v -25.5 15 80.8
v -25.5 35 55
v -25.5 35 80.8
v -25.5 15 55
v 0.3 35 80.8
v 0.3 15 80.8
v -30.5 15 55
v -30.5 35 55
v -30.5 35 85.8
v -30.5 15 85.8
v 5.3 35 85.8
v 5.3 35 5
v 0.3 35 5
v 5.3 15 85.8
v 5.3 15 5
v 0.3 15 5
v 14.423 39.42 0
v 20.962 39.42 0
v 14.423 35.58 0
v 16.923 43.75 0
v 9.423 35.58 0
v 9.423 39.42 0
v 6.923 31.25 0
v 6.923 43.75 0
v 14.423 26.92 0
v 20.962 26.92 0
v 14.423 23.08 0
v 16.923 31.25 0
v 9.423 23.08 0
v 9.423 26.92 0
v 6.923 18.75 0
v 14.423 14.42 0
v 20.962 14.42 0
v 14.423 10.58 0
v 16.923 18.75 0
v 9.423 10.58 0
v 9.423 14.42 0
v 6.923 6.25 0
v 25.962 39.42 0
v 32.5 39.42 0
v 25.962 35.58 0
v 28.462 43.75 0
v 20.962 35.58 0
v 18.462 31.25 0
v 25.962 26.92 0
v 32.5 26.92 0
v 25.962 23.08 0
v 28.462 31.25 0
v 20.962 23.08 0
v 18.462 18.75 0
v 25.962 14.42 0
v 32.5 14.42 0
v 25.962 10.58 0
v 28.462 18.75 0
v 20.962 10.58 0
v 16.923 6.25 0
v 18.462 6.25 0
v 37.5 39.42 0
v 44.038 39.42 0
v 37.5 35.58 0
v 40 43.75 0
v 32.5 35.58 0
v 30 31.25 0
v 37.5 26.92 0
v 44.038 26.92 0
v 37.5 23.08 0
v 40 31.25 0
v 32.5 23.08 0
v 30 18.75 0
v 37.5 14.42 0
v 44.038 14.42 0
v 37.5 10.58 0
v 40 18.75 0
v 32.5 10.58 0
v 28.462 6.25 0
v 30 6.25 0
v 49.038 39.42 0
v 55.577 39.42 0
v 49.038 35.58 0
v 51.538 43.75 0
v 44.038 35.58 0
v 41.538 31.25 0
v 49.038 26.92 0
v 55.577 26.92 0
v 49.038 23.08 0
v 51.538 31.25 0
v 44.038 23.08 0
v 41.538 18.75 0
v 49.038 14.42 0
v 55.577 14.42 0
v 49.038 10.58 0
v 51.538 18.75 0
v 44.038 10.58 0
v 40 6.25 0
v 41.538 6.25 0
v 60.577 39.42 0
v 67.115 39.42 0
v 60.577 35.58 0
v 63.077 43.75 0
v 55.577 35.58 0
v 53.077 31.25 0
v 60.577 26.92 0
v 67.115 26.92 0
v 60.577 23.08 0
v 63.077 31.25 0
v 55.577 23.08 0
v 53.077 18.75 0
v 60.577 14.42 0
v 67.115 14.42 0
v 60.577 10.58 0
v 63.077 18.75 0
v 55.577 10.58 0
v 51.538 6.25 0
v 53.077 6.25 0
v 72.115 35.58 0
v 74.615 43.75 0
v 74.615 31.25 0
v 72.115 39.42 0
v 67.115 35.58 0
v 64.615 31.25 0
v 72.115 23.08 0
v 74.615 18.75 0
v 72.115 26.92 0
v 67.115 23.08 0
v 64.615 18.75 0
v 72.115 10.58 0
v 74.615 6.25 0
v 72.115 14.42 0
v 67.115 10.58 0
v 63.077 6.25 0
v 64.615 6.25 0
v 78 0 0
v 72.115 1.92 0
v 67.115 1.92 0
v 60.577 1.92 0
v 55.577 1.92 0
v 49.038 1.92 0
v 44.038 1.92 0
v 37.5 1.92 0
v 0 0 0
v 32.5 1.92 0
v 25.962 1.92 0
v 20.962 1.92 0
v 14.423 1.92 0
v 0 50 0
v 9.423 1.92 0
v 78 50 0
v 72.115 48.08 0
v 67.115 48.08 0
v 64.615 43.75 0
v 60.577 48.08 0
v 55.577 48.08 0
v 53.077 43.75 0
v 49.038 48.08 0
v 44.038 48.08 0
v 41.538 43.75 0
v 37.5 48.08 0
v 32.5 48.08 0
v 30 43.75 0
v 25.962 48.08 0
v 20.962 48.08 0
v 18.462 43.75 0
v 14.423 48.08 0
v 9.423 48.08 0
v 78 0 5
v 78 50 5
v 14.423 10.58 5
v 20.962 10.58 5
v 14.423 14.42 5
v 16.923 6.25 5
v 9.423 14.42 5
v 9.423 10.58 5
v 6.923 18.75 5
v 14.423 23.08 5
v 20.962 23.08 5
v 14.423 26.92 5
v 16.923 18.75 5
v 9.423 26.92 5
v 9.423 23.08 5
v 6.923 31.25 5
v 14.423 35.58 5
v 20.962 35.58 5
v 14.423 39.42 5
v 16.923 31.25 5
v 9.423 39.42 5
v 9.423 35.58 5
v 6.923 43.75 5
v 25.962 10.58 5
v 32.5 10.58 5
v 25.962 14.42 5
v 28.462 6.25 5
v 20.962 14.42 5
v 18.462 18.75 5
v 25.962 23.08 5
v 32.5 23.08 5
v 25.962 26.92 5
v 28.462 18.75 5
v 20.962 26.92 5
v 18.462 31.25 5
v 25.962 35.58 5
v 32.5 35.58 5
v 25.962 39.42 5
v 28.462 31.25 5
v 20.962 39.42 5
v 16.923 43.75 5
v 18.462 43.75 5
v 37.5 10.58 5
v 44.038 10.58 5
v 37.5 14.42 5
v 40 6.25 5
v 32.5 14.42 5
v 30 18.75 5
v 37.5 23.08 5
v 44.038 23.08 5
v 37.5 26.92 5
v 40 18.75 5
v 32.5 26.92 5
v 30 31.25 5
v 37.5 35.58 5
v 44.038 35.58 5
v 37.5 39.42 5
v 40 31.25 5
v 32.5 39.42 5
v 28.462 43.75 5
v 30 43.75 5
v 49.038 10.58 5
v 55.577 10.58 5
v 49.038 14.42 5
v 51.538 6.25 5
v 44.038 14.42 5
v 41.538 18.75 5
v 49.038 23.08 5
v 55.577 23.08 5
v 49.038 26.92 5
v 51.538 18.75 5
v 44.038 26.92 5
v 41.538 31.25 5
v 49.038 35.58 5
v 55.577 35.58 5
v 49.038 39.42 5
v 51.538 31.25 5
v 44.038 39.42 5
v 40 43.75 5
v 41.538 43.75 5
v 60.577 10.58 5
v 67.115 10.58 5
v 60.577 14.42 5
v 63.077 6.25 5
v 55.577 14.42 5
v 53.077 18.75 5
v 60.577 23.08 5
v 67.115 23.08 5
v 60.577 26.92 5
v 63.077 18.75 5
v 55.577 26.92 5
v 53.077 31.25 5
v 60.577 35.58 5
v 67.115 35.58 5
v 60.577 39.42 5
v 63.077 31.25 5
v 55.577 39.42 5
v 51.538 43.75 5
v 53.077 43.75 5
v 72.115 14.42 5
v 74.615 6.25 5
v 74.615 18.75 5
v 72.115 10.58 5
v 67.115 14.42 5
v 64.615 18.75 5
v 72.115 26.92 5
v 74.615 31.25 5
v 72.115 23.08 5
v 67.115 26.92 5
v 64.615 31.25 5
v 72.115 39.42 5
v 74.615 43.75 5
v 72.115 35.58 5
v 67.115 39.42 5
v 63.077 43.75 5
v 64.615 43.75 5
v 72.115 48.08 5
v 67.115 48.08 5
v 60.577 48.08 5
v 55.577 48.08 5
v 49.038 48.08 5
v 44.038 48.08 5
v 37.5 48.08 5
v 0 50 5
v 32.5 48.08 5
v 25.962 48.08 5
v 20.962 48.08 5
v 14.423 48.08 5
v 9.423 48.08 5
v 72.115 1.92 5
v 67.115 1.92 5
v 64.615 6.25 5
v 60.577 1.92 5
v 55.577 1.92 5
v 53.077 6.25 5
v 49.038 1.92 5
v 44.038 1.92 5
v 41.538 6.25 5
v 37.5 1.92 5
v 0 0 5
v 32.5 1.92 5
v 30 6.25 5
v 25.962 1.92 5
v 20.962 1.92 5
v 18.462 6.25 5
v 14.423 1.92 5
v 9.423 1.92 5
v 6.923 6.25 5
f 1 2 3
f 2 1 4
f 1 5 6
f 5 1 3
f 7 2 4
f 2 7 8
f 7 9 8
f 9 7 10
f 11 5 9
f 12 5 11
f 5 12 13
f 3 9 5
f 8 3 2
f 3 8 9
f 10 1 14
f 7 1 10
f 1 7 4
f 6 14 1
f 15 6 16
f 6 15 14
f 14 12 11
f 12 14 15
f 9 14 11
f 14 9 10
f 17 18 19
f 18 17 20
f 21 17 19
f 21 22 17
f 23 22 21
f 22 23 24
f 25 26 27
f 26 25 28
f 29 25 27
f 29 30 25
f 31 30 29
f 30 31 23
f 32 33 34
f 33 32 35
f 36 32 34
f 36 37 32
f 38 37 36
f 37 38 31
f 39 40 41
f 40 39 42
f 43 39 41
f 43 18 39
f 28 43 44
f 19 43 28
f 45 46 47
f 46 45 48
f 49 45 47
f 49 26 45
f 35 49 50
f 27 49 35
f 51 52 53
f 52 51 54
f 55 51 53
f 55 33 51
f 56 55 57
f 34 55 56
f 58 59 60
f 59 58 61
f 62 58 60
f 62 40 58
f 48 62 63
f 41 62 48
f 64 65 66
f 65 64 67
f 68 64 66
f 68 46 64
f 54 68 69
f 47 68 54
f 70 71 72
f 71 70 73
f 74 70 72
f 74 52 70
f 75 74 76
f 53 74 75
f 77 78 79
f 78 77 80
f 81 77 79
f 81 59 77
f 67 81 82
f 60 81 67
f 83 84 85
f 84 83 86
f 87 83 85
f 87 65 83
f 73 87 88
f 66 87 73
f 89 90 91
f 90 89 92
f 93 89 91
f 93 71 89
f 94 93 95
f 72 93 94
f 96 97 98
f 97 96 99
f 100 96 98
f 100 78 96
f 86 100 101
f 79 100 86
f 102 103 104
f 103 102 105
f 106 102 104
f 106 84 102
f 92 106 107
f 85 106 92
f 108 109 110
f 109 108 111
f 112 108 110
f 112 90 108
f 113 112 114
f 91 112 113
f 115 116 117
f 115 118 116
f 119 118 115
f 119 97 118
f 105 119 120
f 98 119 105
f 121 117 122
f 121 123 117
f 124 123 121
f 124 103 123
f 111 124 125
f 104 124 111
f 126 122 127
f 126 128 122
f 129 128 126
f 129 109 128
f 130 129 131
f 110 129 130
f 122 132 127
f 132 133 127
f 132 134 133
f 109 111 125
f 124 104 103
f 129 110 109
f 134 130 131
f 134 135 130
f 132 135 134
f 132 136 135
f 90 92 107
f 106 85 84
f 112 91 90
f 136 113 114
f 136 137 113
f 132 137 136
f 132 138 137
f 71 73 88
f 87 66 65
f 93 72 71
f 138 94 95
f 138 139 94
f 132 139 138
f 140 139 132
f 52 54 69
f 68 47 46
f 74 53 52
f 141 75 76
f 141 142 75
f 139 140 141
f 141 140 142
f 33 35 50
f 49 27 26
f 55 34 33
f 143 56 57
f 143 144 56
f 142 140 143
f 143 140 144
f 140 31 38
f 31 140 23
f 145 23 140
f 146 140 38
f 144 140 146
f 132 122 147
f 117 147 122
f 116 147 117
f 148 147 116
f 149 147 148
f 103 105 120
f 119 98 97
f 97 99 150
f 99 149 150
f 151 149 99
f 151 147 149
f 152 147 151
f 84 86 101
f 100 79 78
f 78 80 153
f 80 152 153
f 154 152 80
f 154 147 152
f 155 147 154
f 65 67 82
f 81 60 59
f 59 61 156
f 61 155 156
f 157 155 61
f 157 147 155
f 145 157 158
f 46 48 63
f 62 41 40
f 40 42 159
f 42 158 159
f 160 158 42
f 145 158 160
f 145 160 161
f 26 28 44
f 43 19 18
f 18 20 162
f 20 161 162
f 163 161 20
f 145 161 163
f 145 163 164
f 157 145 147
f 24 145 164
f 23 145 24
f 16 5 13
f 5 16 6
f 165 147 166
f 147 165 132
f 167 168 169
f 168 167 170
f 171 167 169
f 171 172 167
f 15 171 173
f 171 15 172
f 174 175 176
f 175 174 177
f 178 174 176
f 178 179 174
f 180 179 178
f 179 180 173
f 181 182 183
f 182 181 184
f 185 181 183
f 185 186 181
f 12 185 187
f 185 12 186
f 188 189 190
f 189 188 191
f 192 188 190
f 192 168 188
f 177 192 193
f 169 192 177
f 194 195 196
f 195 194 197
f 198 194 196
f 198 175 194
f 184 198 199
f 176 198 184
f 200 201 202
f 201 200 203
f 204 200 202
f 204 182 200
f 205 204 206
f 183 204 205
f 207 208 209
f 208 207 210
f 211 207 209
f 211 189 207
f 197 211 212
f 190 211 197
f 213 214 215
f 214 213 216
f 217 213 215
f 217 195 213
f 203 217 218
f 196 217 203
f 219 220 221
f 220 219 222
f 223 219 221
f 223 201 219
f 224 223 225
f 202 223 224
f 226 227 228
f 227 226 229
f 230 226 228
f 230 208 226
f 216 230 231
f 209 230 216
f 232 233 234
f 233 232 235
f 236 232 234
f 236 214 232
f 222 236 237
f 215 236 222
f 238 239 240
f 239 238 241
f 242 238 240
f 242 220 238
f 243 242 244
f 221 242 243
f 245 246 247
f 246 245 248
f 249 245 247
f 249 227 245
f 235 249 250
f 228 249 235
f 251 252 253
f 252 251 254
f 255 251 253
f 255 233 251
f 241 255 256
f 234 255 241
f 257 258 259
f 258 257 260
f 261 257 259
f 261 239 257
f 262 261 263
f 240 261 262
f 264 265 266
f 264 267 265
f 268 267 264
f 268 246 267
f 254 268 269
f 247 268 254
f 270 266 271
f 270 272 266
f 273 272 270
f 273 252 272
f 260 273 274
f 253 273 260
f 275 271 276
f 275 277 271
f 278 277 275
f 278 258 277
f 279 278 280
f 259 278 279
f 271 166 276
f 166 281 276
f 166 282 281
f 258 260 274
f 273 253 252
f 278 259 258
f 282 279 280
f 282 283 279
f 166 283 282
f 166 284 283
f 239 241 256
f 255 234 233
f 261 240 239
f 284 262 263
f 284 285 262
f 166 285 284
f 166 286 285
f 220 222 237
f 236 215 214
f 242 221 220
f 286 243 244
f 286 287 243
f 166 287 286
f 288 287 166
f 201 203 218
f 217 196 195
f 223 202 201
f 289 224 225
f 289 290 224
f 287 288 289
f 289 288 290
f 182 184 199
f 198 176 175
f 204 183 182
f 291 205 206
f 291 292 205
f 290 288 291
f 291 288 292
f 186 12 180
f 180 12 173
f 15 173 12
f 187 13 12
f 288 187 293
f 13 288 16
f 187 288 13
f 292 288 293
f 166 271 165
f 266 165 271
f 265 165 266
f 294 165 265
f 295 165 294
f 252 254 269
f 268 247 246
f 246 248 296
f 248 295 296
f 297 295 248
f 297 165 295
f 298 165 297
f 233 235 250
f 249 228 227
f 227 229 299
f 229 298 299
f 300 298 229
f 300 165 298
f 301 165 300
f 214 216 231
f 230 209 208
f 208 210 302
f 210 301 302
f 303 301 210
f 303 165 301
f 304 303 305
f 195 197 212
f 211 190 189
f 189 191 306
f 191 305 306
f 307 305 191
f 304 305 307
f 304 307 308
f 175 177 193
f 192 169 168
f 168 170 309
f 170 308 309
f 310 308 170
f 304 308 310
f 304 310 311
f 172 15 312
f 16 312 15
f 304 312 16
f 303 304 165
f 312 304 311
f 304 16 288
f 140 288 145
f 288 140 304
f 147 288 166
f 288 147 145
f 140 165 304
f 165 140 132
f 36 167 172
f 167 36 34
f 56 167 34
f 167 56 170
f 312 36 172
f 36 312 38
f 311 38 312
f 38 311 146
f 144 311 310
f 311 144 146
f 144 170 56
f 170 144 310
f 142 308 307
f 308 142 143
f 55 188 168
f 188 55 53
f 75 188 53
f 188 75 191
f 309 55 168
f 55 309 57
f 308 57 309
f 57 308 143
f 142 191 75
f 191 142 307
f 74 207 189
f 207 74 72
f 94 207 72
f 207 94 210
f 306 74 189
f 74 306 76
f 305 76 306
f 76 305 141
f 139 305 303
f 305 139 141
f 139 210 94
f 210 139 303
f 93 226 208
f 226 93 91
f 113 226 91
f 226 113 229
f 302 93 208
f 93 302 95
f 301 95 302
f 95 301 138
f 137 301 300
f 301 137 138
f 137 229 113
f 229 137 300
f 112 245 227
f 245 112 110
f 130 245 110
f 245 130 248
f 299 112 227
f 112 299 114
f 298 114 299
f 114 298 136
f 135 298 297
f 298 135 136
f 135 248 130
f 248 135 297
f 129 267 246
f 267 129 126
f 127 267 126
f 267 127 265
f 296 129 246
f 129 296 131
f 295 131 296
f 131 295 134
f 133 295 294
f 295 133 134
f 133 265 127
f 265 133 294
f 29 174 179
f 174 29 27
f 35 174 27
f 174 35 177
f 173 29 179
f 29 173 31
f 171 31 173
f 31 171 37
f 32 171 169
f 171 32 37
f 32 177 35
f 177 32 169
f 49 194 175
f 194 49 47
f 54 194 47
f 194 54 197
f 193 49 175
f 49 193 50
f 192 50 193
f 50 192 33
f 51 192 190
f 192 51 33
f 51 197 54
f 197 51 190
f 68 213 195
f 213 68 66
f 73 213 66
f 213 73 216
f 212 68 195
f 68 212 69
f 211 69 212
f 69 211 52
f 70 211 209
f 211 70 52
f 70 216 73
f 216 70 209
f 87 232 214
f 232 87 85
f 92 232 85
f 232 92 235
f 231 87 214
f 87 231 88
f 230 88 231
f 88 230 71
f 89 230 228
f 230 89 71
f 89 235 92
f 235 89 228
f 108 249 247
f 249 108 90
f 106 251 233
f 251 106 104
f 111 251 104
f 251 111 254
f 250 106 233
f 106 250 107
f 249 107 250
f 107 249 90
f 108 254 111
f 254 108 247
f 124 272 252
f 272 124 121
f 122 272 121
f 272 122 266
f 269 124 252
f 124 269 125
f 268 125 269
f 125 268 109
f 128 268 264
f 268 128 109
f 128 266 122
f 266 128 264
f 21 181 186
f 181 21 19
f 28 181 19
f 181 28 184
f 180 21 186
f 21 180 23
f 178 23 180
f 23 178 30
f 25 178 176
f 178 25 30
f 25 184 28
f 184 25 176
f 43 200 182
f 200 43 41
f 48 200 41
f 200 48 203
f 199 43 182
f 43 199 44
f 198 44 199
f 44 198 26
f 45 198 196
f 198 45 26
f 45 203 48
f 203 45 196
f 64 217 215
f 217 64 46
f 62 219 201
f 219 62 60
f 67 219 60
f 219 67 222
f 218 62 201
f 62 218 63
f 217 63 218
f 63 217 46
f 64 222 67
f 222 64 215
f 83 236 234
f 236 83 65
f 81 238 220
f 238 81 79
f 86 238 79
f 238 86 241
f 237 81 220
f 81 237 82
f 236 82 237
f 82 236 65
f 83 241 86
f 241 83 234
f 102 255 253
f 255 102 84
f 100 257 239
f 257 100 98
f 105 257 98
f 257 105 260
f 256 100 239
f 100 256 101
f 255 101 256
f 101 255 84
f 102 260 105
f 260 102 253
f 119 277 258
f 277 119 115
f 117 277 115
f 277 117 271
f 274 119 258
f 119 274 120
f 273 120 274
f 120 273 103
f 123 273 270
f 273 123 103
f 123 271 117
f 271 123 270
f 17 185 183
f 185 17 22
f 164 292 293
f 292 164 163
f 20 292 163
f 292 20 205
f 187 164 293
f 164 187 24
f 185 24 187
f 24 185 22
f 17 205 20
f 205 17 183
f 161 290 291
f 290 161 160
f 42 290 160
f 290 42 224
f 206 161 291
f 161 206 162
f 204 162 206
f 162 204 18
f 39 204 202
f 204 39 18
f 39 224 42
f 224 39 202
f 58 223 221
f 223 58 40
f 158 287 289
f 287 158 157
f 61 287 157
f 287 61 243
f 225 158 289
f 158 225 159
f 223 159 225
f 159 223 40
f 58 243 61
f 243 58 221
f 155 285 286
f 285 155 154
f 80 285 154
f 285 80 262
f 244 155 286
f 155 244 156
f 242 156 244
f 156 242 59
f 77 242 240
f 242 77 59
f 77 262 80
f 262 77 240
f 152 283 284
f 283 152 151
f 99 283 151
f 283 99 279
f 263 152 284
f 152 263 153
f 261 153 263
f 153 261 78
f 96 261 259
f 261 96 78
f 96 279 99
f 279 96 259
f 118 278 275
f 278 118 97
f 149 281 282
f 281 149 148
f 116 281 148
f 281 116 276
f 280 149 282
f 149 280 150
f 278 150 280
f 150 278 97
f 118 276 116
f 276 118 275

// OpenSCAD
// file: hook.scad
extrusion_p=25.8;

module bucket_hook(width, thickness, tail) {
    cube([thickness,width,extrusion_p]);
    translate([0,0,extrusion_p])
    cube([extrusion_p+thickness*2,width, thickness]);
    translate([extrusion_p+thickness,0,-tail])
    cube([thickness,width,extrusion_p+tail]);
}
// main file
use <hook.scad>;

pb_length = 73;
pb_width = 50;
hook_width = 20;
hook_thickness = 5;
hook_tail = 55;
base_thickness = 5;

difference() {
    union() {
        translate([-pb_length/2+hook_thickness+1,pb_width/2-hook_width/2,hook_tail])
        bucket_hook(hook_width, hook_thickness, hook_tail);
        cube([pb_length+hook_thickness, pb_width, base_thickness]);
    }

    hex_radius=5;
    color("red")
    for (i=[0.3:3:3*18]) {
        for (j=[0.5:3:3*6]) {
            translate([hook_thickness+hex_radius+(hex_radius/1.3*j),hex_radius+(hex_radius/1.2*i),0])
            cylinder(r=hex_radius,h=5,$fn=6);
        }
    }
}
